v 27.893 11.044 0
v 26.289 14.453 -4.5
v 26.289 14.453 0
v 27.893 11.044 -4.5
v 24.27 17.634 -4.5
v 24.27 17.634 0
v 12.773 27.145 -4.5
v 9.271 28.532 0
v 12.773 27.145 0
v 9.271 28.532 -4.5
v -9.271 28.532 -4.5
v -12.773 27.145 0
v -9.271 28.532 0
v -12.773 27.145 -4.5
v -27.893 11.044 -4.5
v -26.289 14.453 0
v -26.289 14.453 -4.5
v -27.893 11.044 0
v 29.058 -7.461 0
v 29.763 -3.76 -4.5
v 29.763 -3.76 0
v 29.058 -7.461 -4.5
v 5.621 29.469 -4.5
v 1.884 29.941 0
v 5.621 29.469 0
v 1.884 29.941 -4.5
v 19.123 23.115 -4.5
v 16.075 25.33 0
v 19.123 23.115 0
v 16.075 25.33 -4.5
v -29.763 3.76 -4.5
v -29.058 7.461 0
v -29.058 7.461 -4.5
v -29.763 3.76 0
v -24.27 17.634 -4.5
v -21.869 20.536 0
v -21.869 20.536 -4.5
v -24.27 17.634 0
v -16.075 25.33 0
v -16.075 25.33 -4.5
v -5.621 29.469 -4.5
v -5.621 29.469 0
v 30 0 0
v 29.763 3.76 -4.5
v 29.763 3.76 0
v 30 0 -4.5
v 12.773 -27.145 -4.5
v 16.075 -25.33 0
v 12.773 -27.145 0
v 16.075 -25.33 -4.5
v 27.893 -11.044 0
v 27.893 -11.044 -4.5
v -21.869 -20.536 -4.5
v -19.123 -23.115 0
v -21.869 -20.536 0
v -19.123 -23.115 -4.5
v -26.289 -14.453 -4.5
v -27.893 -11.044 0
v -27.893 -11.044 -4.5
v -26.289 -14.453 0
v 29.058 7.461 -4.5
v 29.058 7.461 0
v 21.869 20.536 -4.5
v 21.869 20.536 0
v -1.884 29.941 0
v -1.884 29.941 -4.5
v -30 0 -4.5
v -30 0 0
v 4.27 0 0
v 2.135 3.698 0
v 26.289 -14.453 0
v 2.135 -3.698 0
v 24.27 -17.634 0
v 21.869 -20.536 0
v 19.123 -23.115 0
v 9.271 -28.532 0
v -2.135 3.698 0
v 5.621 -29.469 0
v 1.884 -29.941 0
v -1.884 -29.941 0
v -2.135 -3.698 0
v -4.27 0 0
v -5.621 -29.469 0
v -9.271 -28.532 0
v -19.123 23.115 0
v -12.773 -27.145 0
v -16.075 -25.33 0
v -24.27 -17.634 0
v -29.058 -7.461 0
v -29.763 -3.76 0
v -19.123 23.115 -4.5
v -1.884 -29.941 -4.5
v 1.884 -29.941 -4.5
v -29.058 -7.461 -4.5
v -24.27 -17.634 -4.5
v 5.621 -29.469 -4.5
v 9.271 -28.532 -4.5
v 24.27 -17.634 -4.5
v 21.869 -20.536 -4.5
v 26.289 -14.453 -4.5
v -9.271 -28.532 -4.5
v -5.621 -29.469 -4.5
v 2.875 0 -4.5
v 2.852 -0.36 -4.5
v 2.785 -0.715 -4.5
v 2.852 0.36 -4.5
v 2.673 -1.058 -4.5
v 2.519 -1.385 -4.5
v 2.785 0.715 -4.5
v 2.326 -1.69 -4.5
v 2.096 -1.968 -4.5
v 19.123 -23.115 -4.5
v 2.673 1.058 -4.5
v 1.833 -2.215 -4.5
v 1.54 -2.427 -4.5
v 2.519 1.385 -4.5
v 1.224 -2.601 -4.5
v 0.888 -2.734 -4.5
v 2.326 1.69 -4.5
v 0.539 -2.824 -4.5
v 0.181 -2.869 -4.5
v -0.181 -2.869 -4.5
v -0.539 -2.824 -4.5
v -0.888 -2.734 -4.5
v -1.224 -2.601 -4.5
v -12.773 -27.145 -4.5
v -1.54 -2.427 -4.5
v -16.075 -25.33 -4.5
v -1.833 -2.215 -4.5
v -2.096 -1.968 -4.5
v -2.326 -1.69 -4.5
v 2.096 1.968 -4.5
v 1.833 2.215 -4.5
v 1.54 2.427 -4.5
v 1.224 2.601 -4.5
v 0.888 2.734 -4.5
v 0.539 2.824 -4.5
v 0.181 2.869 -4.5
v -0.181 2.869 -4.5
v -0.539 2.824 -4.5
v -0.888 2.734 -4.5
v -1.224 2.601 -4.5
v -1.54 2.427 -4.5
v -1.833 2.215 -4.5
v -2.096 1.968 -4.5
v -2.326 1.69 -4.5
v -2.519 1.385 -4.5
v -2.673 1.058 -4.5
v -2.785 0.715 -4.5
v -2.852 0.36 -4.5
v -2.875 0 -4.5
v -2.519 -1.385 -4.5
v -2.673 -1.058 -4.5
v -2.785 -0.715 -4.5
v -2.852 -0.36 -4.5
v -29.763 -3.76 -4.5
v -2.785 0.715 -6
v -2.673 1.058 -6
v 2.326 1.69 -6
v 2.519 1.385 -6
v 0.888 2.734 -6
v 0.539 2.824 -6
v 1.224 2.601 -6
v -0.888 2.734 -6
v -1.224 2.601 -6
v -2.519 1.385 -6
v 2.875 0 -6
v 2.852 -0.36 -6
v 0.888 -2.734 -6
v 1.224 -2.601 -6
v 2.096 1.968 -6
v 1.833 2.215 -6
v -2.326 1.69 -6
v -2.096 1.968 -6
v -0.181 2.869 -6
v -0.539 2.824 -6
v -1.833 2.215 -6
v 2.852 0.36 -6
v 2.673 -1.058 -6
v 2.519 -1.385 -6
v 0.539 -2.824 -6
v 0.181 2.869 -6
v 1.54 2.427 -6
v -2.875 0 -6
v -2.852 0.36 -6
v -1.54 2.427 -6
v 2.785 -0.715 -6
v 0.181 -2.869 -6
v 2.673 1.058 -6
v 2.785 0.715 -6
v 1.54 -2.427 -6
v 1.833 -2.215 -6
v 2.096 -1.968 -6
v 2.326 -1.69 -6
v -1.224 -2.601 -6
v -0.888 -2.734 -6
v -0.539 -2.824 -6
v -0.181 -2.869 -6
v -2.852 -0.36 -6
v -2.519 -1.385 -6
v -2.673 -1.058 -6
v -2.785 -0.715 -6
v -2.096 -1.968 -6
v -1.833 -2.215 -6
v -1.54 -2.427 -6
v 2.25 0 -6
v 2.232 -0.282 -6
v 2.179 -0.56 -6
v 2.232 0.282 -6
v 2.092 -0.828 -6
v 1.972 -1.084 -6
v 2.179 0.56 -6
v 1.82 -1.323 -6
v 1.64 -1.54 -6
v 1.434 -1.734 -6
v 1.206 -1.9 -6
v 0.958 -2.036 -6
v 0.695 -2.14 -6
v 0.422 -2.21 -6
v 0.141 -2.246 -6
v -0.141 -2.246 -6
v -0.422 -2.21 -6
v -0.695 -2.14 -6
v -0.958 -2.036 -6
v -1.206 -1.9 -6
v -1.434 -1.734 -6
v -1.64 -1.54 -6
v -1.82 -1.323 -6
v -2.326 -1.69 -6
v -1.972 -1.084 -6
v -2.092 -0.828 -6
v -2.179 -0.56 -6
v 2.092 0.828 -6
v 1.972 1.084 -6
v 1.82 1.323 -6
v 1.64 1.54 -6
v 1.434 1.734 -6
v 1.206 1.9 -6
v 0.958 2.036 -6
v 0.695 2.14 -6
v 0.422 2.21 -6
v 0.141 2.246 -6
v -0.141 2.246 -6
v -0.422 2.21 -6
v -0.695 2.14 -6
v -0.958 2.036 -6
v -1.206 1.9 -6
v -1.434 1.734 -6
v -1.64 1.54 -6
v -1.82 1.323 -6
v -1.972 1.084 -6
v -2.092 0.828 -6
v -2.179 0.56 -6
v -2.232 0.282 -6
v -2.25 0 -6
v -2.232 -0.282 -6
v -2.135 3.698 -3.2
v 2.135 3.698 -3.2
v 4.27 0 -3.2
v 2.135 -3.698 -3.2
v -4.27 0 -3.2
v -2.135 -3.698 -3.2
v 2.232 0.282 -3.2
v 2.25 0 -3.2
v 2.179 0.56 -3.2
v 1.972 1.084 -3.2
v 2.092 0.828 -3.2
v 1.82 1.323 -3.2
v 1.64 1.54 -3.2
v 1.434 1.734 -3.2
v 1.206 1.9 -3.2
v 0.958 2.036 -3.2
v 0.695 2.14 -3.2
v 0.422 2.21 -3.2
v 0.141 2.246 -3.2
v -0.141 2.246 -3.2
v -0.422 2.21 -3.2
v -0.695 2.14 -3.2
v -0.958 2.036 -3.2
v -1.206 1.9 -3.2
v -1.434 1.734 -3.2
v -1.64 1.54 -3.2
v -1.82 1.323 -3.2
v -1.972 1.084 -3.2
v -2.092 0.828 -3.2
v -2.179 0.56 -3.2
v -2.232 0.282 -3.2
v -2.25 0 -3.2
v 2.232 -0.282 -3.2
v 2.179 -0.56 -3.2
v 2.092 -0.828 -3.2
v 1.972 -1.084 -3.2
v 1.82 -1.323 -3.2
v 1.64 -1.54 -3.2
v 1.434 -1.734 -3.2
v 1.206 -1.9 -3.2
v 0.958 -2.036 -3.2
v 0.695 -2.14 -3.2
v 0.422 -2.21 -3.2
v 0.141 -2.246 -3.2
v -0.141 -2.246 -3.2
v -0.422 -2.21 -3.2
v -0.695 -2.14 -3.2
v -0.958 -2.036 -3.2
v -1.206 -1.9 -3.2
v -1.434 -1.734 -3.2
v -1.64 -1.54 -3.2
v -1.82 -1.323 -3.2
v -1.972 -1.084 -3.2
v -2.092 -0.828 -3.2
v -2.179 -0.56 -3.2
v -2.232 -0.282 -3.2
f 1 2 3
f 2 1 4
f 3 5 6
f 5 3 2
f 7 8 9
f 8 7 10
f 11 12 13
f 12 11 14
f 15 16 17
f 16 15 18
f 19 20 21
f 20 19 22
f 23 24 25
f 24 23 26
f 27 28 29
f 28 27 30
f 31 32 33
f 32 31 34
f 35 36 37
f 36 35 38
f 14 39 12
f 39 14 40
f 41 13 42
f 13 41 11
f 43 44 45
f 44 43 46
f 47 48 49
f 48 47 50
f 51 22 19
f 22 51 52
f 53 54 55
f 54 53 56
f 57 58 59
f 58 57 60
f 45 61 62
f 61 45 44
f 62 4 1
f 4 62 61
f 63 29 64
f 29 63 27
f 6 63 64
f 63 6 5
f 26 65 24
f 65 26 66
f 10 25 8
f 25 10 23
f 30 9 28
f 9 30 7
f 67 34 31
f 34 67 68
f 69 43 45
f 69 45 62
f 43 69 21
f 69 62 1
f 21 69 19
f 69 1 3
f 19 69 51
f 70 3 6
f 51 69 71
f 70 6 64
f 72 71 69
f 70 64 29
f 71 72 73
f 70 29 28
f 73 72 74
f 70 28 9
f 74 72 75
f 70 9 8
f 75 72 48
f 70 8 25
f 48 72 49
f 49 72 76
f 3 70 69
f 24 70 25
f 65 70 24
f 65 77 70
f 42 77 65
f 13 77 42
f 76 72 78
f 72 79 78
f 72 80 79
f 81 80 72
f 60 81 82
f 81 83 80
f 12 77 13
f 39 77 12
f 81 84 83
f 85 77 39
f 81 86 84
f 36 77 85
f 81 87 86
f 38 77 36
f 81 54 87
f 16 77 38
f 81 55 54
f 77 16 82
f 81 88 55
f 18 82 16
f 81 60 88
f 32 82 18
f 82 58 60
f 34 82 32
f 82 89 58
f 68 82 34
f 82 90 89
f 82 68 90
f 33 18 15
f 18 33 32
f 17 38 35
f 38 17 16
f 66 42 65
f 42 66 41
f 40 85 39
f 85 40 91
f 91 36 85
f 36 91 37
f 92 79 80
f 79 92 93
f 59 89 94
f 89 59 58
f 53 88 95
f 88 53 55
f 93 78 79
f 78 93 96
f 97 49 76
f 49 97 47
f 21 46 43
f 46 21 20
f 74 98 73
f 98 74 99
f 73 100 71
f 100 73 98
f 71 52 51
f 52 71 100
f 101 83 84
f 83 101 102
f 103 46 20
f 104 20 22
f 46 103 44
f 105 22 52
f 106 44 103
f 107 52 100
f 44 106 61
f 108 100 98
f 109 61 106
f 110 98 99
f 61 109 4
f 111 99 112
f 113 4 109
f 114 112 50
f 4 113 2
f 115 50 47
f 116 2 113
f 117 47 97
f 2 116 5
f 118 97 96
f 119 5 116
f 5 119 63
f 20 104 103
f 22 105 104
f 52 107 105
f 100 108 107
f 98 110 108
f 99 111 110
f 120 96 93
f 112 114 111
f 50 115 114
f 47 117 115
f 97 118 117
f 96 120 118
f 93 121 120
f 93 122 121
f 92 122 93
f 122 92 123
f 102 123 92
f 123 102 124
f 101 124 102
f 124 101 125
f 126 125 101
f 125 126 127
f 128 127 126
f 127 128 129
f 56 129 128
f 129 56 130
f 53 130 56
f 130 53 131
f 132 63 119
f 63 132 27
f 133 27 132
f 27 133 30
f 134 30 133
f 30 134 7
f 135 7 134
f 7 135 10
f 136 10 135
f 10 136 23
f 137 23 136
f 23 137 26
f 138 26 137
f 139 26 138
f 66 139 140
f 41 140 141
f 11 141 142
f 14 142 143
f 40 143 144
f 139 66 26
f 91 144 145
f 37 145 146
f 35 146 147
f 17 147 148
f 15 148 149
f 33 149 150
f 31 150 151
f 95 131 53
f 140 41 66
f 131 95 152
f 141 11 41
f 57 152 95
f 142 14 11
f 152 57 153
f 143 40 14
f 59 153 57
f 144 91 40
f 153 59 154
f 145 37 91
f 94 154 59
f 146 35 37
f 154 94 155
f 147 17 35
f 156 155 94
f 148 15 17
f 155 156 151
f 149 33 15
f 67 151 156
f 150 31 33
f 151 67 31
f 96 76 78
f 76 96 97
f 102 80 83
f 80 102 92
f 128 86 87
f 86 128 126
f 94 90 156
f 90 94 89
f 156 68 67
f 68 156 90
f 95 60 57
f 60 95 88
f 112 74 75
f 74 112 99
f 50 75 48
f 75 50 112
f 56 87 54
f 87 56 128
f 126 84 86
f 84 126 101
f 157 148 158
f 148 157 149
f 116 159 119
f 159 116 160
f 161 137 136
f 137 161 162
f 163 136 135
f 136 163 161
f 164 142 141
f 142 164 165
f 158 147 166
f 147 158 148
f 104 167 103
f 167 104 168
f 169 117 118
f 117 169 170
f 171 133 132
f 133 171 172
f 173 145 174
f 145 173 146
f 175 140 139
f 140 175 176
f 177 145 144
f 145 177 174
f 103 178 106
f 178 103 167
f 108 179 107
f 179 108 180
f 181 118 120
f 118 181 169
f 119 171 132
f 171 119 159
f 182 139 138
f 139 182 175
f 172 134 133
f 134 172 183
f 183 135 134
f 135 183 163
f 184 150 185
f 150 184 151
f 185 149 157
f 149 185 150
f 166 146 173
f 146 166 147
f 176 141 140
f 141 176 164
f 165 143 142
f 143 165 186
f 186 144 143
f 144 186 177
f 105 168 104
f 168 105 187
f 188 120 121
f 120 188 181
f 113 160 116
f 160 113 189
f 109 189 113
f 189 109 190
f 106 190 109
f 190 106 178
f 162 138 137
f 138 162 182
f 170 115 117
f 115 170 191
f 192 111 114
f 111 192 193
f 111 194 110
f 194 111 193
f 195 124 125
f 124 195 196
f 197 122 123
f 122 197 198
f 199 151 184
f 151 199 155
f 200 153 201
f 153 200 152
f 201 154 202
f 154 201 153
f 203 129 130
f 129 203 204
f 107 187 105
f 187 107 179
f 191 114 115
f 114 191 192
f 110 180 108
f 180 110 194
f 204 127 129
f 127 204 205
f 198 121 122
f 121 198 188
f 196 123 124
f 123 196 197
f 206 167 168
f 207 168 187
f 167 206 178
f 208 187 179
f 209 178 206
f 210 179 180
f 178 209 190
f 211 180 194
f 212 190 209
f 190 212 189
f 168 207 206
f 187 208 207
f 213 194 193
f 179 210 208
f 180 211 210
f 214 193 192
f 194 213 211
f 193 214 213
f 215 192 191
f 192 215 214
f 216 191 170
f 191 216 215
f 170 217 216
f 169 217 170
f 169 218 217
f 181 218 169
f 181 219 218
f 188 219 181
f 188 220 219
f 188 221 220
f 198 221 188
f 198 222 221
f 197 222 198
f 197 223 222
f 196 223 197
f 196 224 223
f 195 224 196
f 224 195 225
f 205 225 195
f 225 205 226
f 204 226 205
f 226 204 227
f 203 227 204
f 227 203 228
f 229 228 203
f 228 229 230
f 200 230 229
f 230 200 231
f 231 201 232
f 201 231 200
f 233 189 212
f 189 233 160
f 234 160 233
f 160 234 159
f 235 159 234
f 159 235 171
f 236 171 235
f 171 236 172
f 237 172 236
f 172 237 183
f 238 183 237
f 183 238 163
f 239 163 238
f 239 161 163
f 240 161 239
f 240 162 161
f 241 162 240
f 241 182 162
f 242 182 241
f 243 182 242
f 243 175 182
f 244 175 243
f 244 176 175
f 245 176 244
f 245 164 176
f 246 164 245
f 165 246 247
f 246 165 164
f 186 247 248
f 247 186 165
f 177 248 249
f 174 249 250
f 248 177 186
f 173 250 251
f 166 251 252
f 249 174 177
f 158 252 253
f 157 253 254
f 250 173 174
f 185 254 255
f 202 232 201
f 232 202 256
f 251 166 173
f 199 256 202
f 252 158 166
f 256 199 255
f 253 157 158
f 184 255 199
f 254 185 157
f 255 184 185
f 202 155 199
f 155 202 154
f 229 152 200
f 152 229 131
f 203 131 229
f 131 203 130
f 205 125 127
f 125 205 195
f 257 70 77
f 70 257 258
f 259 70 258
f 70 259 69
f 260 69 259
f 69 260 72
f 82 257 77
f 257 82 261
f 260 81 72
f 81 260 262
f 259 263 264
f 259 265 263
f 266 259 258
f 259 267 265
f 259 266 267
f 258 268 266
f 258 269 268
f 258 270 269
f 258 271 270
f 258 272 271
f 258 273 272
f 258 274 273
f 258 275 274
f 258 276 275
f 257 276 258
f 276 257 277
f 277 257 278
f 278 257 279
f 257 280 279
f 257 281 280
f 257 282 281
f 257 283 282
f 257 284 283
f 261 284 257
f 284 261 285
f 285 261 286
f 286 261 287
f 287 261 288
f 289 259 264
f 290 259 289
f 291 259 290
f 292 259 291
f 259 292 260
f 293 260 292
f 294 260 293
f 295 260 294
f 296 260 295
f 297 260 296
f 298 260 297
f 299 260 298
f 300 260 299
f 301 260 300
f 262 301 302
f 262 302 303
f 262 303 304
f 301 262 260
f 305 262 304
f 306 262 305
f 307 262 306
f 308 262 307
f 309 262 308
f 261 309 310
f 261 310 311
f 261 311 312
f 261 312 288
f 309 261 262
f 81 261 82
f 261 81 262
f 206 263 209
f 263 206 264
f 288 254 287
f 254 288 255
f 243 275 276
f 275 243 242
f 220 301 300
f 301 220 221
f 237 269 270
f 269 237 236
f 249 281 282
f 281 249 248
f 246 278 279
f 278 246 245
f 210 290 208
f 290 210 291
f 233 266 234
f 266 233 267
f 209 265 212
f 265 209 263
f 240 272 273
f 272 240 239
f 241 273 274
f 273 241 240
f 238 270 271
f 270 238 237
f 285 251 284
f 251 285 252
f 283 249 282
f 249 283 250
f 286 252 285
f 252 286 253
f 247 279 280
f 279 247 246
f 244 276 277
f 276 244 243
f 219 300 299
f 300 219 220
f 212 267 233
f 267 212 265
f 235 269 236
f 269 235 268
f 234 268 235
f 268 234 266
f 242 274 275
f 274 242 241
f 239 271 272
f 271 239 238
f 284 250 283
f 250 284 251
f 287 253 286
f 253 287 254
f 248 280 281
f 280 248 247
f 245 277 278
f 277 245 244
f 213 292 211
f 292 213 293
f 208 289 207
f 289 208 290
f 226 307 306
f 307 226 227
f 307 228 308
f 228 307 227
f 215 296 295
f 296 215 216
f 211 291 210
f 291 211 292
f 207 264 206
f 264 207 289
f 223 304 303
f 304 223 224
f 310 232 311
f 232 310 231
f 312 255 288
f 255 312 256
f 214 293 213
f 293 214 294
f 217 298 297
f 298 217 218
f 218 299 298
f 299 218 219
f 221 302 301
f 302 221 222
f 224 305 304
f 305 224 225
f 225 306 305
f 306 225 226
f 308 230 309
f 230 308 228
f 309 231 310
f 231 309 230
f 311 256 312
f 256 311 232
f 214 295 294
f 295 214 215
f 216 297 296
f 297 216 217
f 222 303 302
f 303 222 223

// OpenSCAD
$fn = 50;

difference() {
	union() {
		translate(v = [0, 0, -4.5]) {
			cylinder(h = 4.5, r = 30.0);
		}
		#translate(v = [0, 0, -6.0]) {
			cylinder(h = 6, r = 2.875);
		}
	}
	union() {
		translate(v = [0, 0, 0]) {
			rotate(a = [0, 0, 0]) {
				difference() {
					union() {
						translate(v = [0, 0, -3.2]) {
							linear_extrude(height = 3.2) {
								polygon(points = [[4.2698, 0.0], [2.1349000000000005, 3.697755269078796], [-2.134899999999999, 3.6977552690787965], [-4.2698, 5.228996902999369e-16], [-2.134900000000002, -3.6977552690787956], [2.1348999999999974, -3.697755269078798]]);
							}
						}
					}
					union();
				}
			}
		}
		#translate(v = [0, 0, -100.0]) {
			cylinder(h = 200, r = 2.25);
		}
	}
}
